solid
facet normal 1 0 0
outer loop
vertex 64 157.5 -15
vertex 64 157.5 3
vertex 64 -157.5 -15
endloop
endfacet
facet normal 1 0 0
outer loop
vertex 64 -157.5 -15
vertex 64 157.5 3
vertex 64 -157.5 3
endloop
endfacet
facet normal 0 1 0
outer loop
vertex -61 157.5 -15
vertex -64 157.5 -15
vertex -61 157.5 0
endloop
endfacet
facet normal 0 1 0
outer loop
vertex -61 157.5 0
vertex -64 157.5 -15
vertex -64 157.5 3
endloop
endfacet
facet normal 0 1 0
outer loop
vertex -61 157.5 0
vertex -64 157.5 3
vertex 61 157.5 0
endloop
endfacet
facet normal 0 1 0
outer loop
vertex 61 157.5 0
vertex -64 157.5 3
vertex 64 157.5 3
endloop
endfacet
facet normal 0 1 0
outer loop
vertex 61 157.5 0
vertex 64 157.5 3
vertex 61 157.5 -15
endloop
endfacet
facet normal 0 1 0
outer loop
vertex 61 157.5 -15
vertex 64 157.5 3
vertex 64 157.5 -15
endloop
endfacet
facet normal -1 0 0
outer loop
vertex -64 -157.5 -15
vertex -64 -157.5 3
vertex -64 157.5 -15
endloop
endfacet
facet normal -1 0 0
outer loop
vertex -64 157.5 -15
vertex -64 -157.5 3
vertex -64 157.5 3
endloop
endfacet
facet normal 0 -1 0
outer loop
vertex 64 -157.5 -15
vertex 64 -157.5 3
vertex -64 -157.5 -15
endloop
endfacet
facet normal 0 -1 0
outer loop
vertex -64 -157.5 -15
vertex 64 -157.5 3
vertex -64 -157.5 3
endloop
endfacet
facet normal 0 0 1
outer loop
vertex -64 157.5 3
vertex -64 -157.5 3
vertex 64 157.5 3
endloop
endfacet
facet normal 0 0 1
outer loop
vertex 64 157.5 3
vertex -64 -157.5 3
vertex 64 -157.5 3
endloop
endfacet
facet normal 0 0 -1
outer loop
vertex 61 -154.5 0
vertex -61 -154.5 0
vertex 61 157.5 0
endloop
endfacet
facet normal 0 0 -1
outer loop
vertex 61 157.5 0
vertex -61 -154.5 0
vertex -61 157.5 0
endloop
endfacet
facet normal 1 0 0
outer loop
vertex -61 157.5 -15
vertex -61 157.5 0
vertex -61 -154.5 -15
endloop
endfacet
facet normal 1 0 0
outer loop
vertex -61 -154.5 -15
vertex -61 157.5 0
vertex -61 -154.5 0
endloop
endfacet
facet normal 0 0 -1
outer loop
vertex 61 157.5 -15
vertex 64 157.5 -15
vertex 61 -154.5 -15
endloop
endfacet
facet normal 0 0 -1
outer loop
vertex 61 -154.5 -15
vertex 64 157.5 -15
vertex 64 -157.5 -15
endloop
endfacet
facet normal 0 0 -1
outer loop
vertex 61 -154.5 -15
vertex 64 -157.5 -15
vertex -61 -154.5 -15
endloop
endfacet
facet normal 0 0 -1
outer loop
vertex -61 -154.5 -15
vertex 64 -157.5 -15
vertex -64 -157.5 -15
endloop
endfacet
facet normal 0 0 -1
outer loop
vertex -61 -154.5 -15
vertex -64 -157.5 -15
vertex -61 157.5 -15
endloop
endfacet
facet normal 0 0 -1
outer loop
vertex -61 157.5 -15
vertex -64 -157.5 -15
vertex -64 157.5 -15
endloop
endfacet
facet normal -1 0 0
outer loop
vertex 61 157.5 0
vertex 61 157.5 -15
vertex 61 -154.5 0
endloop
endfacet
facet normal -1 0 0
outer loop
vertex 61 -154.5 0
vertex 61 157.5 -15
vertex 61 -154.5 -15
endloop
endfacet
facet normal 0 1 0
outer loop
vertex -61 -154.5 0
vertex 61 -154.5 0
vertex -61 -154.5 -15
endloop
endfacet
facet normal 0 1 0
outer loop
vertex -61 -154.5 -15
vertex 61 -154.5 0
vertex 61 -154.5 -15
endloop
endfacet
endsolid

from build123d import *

# Parameters (mm, degrees)
SKETCH1_W           = 128
SKETCH1_H           = 315
BOSS_EXTRUDE1_DEPTH = 3
SKETCH2_W           = 3
SKETCH2_H           = 312
SKETCH2_H_2         = 3
SKETCH2_W_2         = 122
BOSS_EXTRUDE3_DEPTH = 15


with BuildPart() as part:
    # Sketch1 → Boss-Extrude1 (new body)
    with BuildSketch(Plane.XY):
        Rectangle(SKETCH1_W, SKETCH1_H)
    extrude(amount=BOSS_EXTRUDE1_DEPTH)

    # Sketch2 → Boss-Extrude3 (add)
    with BuildSketch(Plane(origin=(0, 0, 0), x_dir=(-1, 0, 0), z_dir=(0, 0, -1))):
        with Locations((-62.5, 1.5)):
            Rectangle(SKETCH2_W, SKETCH2_H)
        with Locations((-62.5, -156)):
            Rectangle(SKETCH2_W, SKETCH2_H_2)
        with Locations((0, -156)):
            Rectangle(SKETCH2_W_2, SKETCH2_H_2)
        with Locations((62.5, 1.5)):
            Rectangle(SKETCH2_W, SKETCH2_H)
        with Locations((62.5, -156)):
            Rectangle(SKETCH2_W, SKETCH2_H_2)
    extrude(amount=BOSS_EXTRUDE3_DEPTH)


solid = part.part
